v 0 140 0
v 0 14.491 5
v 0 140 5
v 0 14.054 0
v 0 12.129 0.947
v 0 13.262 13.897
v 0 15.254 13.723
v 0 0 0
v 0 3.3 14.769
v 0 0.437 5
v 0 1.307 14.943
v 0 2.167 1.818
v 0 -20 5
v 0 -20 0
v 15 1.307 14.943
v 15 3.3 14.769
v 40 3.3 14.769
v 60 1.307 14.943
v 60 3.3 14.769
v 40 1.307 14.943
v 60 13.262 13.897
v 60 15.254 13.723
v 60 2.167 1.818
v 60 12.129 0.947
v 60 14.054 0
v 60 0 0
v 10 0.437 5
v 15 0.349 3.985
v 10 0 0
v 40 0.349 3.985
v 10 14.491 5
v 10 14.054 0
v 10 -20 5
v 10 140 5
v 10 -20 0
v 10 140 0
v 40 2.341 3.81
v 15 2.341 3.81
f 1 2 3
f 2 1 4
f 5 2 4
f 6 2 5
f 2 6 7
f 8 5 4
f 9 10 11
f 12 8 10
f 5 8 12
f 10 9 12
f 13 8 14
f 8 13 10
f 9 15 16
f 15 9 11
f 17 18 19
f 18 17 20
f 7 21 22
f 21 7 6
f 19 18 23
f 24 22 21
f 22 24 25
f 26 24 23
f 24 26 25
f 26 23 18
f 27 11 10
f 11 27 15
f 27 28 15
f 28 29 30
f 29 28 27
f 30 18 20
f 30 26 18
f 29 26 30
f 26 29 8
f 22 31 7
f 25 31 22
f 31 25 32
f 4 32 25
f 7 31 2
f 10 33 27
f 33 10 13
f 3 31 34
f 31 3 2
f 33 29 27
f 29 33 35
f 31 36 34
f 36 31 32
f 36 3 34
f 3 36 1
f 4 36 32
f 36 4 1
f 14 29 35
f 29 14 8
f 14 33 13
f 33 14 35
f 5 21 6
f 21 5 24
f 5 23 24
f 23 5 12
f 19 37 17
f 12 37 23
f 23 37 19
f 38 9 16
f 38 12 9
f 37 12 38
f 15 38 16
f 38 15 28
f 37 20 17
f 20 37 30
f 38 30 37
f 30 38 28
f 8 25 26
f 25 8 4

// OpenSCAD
width = 60;
height = 15;
thickness = 2;
depth = 14;
leg_depth = 80;
leg_width = 10;
leg_height = 5;
gap_offset_x = 15;
gap_width = 25;
gap_height = 11;
tilt_angle = 5;
leg_front_depth = 20;



translate([0, 0, 0])
{
    difference()
    {
        rotate(-tilt_angle, [1, 0, 0])
        {
            difference()
            {
                union()
                {
                    cube([width, depth, height]);
                    
                    // Pootje naar voren.
                    rotate(tilt_angle, [1, 0, 0])
                    {
                        difference()
                        {
                            // Pootje.
                            translate([0, -leg_front_depth, 0])
                            {
                                cube([leg_width, leg_depth + leg_depth, leg_height]);
                            }
                        }
                    }
                }
                
                // Leegmaken scherm-staander.
                translate([0, thickness, thickness])
                {
                    cube([width, depth - thickness - thickness, height - thickness]); 
                }
                
                // Uitsnede voor aan/uit knop voorkant.
                translate([gap_offset_x, 0, height - gap_height])
                {
                    cube([gap_width, thickness, gap_height]);
                }
            }
        }
        
        translate([0, 0, -5])
        {
            cube([width, depth + 5, 5]);
        }

    }
}
